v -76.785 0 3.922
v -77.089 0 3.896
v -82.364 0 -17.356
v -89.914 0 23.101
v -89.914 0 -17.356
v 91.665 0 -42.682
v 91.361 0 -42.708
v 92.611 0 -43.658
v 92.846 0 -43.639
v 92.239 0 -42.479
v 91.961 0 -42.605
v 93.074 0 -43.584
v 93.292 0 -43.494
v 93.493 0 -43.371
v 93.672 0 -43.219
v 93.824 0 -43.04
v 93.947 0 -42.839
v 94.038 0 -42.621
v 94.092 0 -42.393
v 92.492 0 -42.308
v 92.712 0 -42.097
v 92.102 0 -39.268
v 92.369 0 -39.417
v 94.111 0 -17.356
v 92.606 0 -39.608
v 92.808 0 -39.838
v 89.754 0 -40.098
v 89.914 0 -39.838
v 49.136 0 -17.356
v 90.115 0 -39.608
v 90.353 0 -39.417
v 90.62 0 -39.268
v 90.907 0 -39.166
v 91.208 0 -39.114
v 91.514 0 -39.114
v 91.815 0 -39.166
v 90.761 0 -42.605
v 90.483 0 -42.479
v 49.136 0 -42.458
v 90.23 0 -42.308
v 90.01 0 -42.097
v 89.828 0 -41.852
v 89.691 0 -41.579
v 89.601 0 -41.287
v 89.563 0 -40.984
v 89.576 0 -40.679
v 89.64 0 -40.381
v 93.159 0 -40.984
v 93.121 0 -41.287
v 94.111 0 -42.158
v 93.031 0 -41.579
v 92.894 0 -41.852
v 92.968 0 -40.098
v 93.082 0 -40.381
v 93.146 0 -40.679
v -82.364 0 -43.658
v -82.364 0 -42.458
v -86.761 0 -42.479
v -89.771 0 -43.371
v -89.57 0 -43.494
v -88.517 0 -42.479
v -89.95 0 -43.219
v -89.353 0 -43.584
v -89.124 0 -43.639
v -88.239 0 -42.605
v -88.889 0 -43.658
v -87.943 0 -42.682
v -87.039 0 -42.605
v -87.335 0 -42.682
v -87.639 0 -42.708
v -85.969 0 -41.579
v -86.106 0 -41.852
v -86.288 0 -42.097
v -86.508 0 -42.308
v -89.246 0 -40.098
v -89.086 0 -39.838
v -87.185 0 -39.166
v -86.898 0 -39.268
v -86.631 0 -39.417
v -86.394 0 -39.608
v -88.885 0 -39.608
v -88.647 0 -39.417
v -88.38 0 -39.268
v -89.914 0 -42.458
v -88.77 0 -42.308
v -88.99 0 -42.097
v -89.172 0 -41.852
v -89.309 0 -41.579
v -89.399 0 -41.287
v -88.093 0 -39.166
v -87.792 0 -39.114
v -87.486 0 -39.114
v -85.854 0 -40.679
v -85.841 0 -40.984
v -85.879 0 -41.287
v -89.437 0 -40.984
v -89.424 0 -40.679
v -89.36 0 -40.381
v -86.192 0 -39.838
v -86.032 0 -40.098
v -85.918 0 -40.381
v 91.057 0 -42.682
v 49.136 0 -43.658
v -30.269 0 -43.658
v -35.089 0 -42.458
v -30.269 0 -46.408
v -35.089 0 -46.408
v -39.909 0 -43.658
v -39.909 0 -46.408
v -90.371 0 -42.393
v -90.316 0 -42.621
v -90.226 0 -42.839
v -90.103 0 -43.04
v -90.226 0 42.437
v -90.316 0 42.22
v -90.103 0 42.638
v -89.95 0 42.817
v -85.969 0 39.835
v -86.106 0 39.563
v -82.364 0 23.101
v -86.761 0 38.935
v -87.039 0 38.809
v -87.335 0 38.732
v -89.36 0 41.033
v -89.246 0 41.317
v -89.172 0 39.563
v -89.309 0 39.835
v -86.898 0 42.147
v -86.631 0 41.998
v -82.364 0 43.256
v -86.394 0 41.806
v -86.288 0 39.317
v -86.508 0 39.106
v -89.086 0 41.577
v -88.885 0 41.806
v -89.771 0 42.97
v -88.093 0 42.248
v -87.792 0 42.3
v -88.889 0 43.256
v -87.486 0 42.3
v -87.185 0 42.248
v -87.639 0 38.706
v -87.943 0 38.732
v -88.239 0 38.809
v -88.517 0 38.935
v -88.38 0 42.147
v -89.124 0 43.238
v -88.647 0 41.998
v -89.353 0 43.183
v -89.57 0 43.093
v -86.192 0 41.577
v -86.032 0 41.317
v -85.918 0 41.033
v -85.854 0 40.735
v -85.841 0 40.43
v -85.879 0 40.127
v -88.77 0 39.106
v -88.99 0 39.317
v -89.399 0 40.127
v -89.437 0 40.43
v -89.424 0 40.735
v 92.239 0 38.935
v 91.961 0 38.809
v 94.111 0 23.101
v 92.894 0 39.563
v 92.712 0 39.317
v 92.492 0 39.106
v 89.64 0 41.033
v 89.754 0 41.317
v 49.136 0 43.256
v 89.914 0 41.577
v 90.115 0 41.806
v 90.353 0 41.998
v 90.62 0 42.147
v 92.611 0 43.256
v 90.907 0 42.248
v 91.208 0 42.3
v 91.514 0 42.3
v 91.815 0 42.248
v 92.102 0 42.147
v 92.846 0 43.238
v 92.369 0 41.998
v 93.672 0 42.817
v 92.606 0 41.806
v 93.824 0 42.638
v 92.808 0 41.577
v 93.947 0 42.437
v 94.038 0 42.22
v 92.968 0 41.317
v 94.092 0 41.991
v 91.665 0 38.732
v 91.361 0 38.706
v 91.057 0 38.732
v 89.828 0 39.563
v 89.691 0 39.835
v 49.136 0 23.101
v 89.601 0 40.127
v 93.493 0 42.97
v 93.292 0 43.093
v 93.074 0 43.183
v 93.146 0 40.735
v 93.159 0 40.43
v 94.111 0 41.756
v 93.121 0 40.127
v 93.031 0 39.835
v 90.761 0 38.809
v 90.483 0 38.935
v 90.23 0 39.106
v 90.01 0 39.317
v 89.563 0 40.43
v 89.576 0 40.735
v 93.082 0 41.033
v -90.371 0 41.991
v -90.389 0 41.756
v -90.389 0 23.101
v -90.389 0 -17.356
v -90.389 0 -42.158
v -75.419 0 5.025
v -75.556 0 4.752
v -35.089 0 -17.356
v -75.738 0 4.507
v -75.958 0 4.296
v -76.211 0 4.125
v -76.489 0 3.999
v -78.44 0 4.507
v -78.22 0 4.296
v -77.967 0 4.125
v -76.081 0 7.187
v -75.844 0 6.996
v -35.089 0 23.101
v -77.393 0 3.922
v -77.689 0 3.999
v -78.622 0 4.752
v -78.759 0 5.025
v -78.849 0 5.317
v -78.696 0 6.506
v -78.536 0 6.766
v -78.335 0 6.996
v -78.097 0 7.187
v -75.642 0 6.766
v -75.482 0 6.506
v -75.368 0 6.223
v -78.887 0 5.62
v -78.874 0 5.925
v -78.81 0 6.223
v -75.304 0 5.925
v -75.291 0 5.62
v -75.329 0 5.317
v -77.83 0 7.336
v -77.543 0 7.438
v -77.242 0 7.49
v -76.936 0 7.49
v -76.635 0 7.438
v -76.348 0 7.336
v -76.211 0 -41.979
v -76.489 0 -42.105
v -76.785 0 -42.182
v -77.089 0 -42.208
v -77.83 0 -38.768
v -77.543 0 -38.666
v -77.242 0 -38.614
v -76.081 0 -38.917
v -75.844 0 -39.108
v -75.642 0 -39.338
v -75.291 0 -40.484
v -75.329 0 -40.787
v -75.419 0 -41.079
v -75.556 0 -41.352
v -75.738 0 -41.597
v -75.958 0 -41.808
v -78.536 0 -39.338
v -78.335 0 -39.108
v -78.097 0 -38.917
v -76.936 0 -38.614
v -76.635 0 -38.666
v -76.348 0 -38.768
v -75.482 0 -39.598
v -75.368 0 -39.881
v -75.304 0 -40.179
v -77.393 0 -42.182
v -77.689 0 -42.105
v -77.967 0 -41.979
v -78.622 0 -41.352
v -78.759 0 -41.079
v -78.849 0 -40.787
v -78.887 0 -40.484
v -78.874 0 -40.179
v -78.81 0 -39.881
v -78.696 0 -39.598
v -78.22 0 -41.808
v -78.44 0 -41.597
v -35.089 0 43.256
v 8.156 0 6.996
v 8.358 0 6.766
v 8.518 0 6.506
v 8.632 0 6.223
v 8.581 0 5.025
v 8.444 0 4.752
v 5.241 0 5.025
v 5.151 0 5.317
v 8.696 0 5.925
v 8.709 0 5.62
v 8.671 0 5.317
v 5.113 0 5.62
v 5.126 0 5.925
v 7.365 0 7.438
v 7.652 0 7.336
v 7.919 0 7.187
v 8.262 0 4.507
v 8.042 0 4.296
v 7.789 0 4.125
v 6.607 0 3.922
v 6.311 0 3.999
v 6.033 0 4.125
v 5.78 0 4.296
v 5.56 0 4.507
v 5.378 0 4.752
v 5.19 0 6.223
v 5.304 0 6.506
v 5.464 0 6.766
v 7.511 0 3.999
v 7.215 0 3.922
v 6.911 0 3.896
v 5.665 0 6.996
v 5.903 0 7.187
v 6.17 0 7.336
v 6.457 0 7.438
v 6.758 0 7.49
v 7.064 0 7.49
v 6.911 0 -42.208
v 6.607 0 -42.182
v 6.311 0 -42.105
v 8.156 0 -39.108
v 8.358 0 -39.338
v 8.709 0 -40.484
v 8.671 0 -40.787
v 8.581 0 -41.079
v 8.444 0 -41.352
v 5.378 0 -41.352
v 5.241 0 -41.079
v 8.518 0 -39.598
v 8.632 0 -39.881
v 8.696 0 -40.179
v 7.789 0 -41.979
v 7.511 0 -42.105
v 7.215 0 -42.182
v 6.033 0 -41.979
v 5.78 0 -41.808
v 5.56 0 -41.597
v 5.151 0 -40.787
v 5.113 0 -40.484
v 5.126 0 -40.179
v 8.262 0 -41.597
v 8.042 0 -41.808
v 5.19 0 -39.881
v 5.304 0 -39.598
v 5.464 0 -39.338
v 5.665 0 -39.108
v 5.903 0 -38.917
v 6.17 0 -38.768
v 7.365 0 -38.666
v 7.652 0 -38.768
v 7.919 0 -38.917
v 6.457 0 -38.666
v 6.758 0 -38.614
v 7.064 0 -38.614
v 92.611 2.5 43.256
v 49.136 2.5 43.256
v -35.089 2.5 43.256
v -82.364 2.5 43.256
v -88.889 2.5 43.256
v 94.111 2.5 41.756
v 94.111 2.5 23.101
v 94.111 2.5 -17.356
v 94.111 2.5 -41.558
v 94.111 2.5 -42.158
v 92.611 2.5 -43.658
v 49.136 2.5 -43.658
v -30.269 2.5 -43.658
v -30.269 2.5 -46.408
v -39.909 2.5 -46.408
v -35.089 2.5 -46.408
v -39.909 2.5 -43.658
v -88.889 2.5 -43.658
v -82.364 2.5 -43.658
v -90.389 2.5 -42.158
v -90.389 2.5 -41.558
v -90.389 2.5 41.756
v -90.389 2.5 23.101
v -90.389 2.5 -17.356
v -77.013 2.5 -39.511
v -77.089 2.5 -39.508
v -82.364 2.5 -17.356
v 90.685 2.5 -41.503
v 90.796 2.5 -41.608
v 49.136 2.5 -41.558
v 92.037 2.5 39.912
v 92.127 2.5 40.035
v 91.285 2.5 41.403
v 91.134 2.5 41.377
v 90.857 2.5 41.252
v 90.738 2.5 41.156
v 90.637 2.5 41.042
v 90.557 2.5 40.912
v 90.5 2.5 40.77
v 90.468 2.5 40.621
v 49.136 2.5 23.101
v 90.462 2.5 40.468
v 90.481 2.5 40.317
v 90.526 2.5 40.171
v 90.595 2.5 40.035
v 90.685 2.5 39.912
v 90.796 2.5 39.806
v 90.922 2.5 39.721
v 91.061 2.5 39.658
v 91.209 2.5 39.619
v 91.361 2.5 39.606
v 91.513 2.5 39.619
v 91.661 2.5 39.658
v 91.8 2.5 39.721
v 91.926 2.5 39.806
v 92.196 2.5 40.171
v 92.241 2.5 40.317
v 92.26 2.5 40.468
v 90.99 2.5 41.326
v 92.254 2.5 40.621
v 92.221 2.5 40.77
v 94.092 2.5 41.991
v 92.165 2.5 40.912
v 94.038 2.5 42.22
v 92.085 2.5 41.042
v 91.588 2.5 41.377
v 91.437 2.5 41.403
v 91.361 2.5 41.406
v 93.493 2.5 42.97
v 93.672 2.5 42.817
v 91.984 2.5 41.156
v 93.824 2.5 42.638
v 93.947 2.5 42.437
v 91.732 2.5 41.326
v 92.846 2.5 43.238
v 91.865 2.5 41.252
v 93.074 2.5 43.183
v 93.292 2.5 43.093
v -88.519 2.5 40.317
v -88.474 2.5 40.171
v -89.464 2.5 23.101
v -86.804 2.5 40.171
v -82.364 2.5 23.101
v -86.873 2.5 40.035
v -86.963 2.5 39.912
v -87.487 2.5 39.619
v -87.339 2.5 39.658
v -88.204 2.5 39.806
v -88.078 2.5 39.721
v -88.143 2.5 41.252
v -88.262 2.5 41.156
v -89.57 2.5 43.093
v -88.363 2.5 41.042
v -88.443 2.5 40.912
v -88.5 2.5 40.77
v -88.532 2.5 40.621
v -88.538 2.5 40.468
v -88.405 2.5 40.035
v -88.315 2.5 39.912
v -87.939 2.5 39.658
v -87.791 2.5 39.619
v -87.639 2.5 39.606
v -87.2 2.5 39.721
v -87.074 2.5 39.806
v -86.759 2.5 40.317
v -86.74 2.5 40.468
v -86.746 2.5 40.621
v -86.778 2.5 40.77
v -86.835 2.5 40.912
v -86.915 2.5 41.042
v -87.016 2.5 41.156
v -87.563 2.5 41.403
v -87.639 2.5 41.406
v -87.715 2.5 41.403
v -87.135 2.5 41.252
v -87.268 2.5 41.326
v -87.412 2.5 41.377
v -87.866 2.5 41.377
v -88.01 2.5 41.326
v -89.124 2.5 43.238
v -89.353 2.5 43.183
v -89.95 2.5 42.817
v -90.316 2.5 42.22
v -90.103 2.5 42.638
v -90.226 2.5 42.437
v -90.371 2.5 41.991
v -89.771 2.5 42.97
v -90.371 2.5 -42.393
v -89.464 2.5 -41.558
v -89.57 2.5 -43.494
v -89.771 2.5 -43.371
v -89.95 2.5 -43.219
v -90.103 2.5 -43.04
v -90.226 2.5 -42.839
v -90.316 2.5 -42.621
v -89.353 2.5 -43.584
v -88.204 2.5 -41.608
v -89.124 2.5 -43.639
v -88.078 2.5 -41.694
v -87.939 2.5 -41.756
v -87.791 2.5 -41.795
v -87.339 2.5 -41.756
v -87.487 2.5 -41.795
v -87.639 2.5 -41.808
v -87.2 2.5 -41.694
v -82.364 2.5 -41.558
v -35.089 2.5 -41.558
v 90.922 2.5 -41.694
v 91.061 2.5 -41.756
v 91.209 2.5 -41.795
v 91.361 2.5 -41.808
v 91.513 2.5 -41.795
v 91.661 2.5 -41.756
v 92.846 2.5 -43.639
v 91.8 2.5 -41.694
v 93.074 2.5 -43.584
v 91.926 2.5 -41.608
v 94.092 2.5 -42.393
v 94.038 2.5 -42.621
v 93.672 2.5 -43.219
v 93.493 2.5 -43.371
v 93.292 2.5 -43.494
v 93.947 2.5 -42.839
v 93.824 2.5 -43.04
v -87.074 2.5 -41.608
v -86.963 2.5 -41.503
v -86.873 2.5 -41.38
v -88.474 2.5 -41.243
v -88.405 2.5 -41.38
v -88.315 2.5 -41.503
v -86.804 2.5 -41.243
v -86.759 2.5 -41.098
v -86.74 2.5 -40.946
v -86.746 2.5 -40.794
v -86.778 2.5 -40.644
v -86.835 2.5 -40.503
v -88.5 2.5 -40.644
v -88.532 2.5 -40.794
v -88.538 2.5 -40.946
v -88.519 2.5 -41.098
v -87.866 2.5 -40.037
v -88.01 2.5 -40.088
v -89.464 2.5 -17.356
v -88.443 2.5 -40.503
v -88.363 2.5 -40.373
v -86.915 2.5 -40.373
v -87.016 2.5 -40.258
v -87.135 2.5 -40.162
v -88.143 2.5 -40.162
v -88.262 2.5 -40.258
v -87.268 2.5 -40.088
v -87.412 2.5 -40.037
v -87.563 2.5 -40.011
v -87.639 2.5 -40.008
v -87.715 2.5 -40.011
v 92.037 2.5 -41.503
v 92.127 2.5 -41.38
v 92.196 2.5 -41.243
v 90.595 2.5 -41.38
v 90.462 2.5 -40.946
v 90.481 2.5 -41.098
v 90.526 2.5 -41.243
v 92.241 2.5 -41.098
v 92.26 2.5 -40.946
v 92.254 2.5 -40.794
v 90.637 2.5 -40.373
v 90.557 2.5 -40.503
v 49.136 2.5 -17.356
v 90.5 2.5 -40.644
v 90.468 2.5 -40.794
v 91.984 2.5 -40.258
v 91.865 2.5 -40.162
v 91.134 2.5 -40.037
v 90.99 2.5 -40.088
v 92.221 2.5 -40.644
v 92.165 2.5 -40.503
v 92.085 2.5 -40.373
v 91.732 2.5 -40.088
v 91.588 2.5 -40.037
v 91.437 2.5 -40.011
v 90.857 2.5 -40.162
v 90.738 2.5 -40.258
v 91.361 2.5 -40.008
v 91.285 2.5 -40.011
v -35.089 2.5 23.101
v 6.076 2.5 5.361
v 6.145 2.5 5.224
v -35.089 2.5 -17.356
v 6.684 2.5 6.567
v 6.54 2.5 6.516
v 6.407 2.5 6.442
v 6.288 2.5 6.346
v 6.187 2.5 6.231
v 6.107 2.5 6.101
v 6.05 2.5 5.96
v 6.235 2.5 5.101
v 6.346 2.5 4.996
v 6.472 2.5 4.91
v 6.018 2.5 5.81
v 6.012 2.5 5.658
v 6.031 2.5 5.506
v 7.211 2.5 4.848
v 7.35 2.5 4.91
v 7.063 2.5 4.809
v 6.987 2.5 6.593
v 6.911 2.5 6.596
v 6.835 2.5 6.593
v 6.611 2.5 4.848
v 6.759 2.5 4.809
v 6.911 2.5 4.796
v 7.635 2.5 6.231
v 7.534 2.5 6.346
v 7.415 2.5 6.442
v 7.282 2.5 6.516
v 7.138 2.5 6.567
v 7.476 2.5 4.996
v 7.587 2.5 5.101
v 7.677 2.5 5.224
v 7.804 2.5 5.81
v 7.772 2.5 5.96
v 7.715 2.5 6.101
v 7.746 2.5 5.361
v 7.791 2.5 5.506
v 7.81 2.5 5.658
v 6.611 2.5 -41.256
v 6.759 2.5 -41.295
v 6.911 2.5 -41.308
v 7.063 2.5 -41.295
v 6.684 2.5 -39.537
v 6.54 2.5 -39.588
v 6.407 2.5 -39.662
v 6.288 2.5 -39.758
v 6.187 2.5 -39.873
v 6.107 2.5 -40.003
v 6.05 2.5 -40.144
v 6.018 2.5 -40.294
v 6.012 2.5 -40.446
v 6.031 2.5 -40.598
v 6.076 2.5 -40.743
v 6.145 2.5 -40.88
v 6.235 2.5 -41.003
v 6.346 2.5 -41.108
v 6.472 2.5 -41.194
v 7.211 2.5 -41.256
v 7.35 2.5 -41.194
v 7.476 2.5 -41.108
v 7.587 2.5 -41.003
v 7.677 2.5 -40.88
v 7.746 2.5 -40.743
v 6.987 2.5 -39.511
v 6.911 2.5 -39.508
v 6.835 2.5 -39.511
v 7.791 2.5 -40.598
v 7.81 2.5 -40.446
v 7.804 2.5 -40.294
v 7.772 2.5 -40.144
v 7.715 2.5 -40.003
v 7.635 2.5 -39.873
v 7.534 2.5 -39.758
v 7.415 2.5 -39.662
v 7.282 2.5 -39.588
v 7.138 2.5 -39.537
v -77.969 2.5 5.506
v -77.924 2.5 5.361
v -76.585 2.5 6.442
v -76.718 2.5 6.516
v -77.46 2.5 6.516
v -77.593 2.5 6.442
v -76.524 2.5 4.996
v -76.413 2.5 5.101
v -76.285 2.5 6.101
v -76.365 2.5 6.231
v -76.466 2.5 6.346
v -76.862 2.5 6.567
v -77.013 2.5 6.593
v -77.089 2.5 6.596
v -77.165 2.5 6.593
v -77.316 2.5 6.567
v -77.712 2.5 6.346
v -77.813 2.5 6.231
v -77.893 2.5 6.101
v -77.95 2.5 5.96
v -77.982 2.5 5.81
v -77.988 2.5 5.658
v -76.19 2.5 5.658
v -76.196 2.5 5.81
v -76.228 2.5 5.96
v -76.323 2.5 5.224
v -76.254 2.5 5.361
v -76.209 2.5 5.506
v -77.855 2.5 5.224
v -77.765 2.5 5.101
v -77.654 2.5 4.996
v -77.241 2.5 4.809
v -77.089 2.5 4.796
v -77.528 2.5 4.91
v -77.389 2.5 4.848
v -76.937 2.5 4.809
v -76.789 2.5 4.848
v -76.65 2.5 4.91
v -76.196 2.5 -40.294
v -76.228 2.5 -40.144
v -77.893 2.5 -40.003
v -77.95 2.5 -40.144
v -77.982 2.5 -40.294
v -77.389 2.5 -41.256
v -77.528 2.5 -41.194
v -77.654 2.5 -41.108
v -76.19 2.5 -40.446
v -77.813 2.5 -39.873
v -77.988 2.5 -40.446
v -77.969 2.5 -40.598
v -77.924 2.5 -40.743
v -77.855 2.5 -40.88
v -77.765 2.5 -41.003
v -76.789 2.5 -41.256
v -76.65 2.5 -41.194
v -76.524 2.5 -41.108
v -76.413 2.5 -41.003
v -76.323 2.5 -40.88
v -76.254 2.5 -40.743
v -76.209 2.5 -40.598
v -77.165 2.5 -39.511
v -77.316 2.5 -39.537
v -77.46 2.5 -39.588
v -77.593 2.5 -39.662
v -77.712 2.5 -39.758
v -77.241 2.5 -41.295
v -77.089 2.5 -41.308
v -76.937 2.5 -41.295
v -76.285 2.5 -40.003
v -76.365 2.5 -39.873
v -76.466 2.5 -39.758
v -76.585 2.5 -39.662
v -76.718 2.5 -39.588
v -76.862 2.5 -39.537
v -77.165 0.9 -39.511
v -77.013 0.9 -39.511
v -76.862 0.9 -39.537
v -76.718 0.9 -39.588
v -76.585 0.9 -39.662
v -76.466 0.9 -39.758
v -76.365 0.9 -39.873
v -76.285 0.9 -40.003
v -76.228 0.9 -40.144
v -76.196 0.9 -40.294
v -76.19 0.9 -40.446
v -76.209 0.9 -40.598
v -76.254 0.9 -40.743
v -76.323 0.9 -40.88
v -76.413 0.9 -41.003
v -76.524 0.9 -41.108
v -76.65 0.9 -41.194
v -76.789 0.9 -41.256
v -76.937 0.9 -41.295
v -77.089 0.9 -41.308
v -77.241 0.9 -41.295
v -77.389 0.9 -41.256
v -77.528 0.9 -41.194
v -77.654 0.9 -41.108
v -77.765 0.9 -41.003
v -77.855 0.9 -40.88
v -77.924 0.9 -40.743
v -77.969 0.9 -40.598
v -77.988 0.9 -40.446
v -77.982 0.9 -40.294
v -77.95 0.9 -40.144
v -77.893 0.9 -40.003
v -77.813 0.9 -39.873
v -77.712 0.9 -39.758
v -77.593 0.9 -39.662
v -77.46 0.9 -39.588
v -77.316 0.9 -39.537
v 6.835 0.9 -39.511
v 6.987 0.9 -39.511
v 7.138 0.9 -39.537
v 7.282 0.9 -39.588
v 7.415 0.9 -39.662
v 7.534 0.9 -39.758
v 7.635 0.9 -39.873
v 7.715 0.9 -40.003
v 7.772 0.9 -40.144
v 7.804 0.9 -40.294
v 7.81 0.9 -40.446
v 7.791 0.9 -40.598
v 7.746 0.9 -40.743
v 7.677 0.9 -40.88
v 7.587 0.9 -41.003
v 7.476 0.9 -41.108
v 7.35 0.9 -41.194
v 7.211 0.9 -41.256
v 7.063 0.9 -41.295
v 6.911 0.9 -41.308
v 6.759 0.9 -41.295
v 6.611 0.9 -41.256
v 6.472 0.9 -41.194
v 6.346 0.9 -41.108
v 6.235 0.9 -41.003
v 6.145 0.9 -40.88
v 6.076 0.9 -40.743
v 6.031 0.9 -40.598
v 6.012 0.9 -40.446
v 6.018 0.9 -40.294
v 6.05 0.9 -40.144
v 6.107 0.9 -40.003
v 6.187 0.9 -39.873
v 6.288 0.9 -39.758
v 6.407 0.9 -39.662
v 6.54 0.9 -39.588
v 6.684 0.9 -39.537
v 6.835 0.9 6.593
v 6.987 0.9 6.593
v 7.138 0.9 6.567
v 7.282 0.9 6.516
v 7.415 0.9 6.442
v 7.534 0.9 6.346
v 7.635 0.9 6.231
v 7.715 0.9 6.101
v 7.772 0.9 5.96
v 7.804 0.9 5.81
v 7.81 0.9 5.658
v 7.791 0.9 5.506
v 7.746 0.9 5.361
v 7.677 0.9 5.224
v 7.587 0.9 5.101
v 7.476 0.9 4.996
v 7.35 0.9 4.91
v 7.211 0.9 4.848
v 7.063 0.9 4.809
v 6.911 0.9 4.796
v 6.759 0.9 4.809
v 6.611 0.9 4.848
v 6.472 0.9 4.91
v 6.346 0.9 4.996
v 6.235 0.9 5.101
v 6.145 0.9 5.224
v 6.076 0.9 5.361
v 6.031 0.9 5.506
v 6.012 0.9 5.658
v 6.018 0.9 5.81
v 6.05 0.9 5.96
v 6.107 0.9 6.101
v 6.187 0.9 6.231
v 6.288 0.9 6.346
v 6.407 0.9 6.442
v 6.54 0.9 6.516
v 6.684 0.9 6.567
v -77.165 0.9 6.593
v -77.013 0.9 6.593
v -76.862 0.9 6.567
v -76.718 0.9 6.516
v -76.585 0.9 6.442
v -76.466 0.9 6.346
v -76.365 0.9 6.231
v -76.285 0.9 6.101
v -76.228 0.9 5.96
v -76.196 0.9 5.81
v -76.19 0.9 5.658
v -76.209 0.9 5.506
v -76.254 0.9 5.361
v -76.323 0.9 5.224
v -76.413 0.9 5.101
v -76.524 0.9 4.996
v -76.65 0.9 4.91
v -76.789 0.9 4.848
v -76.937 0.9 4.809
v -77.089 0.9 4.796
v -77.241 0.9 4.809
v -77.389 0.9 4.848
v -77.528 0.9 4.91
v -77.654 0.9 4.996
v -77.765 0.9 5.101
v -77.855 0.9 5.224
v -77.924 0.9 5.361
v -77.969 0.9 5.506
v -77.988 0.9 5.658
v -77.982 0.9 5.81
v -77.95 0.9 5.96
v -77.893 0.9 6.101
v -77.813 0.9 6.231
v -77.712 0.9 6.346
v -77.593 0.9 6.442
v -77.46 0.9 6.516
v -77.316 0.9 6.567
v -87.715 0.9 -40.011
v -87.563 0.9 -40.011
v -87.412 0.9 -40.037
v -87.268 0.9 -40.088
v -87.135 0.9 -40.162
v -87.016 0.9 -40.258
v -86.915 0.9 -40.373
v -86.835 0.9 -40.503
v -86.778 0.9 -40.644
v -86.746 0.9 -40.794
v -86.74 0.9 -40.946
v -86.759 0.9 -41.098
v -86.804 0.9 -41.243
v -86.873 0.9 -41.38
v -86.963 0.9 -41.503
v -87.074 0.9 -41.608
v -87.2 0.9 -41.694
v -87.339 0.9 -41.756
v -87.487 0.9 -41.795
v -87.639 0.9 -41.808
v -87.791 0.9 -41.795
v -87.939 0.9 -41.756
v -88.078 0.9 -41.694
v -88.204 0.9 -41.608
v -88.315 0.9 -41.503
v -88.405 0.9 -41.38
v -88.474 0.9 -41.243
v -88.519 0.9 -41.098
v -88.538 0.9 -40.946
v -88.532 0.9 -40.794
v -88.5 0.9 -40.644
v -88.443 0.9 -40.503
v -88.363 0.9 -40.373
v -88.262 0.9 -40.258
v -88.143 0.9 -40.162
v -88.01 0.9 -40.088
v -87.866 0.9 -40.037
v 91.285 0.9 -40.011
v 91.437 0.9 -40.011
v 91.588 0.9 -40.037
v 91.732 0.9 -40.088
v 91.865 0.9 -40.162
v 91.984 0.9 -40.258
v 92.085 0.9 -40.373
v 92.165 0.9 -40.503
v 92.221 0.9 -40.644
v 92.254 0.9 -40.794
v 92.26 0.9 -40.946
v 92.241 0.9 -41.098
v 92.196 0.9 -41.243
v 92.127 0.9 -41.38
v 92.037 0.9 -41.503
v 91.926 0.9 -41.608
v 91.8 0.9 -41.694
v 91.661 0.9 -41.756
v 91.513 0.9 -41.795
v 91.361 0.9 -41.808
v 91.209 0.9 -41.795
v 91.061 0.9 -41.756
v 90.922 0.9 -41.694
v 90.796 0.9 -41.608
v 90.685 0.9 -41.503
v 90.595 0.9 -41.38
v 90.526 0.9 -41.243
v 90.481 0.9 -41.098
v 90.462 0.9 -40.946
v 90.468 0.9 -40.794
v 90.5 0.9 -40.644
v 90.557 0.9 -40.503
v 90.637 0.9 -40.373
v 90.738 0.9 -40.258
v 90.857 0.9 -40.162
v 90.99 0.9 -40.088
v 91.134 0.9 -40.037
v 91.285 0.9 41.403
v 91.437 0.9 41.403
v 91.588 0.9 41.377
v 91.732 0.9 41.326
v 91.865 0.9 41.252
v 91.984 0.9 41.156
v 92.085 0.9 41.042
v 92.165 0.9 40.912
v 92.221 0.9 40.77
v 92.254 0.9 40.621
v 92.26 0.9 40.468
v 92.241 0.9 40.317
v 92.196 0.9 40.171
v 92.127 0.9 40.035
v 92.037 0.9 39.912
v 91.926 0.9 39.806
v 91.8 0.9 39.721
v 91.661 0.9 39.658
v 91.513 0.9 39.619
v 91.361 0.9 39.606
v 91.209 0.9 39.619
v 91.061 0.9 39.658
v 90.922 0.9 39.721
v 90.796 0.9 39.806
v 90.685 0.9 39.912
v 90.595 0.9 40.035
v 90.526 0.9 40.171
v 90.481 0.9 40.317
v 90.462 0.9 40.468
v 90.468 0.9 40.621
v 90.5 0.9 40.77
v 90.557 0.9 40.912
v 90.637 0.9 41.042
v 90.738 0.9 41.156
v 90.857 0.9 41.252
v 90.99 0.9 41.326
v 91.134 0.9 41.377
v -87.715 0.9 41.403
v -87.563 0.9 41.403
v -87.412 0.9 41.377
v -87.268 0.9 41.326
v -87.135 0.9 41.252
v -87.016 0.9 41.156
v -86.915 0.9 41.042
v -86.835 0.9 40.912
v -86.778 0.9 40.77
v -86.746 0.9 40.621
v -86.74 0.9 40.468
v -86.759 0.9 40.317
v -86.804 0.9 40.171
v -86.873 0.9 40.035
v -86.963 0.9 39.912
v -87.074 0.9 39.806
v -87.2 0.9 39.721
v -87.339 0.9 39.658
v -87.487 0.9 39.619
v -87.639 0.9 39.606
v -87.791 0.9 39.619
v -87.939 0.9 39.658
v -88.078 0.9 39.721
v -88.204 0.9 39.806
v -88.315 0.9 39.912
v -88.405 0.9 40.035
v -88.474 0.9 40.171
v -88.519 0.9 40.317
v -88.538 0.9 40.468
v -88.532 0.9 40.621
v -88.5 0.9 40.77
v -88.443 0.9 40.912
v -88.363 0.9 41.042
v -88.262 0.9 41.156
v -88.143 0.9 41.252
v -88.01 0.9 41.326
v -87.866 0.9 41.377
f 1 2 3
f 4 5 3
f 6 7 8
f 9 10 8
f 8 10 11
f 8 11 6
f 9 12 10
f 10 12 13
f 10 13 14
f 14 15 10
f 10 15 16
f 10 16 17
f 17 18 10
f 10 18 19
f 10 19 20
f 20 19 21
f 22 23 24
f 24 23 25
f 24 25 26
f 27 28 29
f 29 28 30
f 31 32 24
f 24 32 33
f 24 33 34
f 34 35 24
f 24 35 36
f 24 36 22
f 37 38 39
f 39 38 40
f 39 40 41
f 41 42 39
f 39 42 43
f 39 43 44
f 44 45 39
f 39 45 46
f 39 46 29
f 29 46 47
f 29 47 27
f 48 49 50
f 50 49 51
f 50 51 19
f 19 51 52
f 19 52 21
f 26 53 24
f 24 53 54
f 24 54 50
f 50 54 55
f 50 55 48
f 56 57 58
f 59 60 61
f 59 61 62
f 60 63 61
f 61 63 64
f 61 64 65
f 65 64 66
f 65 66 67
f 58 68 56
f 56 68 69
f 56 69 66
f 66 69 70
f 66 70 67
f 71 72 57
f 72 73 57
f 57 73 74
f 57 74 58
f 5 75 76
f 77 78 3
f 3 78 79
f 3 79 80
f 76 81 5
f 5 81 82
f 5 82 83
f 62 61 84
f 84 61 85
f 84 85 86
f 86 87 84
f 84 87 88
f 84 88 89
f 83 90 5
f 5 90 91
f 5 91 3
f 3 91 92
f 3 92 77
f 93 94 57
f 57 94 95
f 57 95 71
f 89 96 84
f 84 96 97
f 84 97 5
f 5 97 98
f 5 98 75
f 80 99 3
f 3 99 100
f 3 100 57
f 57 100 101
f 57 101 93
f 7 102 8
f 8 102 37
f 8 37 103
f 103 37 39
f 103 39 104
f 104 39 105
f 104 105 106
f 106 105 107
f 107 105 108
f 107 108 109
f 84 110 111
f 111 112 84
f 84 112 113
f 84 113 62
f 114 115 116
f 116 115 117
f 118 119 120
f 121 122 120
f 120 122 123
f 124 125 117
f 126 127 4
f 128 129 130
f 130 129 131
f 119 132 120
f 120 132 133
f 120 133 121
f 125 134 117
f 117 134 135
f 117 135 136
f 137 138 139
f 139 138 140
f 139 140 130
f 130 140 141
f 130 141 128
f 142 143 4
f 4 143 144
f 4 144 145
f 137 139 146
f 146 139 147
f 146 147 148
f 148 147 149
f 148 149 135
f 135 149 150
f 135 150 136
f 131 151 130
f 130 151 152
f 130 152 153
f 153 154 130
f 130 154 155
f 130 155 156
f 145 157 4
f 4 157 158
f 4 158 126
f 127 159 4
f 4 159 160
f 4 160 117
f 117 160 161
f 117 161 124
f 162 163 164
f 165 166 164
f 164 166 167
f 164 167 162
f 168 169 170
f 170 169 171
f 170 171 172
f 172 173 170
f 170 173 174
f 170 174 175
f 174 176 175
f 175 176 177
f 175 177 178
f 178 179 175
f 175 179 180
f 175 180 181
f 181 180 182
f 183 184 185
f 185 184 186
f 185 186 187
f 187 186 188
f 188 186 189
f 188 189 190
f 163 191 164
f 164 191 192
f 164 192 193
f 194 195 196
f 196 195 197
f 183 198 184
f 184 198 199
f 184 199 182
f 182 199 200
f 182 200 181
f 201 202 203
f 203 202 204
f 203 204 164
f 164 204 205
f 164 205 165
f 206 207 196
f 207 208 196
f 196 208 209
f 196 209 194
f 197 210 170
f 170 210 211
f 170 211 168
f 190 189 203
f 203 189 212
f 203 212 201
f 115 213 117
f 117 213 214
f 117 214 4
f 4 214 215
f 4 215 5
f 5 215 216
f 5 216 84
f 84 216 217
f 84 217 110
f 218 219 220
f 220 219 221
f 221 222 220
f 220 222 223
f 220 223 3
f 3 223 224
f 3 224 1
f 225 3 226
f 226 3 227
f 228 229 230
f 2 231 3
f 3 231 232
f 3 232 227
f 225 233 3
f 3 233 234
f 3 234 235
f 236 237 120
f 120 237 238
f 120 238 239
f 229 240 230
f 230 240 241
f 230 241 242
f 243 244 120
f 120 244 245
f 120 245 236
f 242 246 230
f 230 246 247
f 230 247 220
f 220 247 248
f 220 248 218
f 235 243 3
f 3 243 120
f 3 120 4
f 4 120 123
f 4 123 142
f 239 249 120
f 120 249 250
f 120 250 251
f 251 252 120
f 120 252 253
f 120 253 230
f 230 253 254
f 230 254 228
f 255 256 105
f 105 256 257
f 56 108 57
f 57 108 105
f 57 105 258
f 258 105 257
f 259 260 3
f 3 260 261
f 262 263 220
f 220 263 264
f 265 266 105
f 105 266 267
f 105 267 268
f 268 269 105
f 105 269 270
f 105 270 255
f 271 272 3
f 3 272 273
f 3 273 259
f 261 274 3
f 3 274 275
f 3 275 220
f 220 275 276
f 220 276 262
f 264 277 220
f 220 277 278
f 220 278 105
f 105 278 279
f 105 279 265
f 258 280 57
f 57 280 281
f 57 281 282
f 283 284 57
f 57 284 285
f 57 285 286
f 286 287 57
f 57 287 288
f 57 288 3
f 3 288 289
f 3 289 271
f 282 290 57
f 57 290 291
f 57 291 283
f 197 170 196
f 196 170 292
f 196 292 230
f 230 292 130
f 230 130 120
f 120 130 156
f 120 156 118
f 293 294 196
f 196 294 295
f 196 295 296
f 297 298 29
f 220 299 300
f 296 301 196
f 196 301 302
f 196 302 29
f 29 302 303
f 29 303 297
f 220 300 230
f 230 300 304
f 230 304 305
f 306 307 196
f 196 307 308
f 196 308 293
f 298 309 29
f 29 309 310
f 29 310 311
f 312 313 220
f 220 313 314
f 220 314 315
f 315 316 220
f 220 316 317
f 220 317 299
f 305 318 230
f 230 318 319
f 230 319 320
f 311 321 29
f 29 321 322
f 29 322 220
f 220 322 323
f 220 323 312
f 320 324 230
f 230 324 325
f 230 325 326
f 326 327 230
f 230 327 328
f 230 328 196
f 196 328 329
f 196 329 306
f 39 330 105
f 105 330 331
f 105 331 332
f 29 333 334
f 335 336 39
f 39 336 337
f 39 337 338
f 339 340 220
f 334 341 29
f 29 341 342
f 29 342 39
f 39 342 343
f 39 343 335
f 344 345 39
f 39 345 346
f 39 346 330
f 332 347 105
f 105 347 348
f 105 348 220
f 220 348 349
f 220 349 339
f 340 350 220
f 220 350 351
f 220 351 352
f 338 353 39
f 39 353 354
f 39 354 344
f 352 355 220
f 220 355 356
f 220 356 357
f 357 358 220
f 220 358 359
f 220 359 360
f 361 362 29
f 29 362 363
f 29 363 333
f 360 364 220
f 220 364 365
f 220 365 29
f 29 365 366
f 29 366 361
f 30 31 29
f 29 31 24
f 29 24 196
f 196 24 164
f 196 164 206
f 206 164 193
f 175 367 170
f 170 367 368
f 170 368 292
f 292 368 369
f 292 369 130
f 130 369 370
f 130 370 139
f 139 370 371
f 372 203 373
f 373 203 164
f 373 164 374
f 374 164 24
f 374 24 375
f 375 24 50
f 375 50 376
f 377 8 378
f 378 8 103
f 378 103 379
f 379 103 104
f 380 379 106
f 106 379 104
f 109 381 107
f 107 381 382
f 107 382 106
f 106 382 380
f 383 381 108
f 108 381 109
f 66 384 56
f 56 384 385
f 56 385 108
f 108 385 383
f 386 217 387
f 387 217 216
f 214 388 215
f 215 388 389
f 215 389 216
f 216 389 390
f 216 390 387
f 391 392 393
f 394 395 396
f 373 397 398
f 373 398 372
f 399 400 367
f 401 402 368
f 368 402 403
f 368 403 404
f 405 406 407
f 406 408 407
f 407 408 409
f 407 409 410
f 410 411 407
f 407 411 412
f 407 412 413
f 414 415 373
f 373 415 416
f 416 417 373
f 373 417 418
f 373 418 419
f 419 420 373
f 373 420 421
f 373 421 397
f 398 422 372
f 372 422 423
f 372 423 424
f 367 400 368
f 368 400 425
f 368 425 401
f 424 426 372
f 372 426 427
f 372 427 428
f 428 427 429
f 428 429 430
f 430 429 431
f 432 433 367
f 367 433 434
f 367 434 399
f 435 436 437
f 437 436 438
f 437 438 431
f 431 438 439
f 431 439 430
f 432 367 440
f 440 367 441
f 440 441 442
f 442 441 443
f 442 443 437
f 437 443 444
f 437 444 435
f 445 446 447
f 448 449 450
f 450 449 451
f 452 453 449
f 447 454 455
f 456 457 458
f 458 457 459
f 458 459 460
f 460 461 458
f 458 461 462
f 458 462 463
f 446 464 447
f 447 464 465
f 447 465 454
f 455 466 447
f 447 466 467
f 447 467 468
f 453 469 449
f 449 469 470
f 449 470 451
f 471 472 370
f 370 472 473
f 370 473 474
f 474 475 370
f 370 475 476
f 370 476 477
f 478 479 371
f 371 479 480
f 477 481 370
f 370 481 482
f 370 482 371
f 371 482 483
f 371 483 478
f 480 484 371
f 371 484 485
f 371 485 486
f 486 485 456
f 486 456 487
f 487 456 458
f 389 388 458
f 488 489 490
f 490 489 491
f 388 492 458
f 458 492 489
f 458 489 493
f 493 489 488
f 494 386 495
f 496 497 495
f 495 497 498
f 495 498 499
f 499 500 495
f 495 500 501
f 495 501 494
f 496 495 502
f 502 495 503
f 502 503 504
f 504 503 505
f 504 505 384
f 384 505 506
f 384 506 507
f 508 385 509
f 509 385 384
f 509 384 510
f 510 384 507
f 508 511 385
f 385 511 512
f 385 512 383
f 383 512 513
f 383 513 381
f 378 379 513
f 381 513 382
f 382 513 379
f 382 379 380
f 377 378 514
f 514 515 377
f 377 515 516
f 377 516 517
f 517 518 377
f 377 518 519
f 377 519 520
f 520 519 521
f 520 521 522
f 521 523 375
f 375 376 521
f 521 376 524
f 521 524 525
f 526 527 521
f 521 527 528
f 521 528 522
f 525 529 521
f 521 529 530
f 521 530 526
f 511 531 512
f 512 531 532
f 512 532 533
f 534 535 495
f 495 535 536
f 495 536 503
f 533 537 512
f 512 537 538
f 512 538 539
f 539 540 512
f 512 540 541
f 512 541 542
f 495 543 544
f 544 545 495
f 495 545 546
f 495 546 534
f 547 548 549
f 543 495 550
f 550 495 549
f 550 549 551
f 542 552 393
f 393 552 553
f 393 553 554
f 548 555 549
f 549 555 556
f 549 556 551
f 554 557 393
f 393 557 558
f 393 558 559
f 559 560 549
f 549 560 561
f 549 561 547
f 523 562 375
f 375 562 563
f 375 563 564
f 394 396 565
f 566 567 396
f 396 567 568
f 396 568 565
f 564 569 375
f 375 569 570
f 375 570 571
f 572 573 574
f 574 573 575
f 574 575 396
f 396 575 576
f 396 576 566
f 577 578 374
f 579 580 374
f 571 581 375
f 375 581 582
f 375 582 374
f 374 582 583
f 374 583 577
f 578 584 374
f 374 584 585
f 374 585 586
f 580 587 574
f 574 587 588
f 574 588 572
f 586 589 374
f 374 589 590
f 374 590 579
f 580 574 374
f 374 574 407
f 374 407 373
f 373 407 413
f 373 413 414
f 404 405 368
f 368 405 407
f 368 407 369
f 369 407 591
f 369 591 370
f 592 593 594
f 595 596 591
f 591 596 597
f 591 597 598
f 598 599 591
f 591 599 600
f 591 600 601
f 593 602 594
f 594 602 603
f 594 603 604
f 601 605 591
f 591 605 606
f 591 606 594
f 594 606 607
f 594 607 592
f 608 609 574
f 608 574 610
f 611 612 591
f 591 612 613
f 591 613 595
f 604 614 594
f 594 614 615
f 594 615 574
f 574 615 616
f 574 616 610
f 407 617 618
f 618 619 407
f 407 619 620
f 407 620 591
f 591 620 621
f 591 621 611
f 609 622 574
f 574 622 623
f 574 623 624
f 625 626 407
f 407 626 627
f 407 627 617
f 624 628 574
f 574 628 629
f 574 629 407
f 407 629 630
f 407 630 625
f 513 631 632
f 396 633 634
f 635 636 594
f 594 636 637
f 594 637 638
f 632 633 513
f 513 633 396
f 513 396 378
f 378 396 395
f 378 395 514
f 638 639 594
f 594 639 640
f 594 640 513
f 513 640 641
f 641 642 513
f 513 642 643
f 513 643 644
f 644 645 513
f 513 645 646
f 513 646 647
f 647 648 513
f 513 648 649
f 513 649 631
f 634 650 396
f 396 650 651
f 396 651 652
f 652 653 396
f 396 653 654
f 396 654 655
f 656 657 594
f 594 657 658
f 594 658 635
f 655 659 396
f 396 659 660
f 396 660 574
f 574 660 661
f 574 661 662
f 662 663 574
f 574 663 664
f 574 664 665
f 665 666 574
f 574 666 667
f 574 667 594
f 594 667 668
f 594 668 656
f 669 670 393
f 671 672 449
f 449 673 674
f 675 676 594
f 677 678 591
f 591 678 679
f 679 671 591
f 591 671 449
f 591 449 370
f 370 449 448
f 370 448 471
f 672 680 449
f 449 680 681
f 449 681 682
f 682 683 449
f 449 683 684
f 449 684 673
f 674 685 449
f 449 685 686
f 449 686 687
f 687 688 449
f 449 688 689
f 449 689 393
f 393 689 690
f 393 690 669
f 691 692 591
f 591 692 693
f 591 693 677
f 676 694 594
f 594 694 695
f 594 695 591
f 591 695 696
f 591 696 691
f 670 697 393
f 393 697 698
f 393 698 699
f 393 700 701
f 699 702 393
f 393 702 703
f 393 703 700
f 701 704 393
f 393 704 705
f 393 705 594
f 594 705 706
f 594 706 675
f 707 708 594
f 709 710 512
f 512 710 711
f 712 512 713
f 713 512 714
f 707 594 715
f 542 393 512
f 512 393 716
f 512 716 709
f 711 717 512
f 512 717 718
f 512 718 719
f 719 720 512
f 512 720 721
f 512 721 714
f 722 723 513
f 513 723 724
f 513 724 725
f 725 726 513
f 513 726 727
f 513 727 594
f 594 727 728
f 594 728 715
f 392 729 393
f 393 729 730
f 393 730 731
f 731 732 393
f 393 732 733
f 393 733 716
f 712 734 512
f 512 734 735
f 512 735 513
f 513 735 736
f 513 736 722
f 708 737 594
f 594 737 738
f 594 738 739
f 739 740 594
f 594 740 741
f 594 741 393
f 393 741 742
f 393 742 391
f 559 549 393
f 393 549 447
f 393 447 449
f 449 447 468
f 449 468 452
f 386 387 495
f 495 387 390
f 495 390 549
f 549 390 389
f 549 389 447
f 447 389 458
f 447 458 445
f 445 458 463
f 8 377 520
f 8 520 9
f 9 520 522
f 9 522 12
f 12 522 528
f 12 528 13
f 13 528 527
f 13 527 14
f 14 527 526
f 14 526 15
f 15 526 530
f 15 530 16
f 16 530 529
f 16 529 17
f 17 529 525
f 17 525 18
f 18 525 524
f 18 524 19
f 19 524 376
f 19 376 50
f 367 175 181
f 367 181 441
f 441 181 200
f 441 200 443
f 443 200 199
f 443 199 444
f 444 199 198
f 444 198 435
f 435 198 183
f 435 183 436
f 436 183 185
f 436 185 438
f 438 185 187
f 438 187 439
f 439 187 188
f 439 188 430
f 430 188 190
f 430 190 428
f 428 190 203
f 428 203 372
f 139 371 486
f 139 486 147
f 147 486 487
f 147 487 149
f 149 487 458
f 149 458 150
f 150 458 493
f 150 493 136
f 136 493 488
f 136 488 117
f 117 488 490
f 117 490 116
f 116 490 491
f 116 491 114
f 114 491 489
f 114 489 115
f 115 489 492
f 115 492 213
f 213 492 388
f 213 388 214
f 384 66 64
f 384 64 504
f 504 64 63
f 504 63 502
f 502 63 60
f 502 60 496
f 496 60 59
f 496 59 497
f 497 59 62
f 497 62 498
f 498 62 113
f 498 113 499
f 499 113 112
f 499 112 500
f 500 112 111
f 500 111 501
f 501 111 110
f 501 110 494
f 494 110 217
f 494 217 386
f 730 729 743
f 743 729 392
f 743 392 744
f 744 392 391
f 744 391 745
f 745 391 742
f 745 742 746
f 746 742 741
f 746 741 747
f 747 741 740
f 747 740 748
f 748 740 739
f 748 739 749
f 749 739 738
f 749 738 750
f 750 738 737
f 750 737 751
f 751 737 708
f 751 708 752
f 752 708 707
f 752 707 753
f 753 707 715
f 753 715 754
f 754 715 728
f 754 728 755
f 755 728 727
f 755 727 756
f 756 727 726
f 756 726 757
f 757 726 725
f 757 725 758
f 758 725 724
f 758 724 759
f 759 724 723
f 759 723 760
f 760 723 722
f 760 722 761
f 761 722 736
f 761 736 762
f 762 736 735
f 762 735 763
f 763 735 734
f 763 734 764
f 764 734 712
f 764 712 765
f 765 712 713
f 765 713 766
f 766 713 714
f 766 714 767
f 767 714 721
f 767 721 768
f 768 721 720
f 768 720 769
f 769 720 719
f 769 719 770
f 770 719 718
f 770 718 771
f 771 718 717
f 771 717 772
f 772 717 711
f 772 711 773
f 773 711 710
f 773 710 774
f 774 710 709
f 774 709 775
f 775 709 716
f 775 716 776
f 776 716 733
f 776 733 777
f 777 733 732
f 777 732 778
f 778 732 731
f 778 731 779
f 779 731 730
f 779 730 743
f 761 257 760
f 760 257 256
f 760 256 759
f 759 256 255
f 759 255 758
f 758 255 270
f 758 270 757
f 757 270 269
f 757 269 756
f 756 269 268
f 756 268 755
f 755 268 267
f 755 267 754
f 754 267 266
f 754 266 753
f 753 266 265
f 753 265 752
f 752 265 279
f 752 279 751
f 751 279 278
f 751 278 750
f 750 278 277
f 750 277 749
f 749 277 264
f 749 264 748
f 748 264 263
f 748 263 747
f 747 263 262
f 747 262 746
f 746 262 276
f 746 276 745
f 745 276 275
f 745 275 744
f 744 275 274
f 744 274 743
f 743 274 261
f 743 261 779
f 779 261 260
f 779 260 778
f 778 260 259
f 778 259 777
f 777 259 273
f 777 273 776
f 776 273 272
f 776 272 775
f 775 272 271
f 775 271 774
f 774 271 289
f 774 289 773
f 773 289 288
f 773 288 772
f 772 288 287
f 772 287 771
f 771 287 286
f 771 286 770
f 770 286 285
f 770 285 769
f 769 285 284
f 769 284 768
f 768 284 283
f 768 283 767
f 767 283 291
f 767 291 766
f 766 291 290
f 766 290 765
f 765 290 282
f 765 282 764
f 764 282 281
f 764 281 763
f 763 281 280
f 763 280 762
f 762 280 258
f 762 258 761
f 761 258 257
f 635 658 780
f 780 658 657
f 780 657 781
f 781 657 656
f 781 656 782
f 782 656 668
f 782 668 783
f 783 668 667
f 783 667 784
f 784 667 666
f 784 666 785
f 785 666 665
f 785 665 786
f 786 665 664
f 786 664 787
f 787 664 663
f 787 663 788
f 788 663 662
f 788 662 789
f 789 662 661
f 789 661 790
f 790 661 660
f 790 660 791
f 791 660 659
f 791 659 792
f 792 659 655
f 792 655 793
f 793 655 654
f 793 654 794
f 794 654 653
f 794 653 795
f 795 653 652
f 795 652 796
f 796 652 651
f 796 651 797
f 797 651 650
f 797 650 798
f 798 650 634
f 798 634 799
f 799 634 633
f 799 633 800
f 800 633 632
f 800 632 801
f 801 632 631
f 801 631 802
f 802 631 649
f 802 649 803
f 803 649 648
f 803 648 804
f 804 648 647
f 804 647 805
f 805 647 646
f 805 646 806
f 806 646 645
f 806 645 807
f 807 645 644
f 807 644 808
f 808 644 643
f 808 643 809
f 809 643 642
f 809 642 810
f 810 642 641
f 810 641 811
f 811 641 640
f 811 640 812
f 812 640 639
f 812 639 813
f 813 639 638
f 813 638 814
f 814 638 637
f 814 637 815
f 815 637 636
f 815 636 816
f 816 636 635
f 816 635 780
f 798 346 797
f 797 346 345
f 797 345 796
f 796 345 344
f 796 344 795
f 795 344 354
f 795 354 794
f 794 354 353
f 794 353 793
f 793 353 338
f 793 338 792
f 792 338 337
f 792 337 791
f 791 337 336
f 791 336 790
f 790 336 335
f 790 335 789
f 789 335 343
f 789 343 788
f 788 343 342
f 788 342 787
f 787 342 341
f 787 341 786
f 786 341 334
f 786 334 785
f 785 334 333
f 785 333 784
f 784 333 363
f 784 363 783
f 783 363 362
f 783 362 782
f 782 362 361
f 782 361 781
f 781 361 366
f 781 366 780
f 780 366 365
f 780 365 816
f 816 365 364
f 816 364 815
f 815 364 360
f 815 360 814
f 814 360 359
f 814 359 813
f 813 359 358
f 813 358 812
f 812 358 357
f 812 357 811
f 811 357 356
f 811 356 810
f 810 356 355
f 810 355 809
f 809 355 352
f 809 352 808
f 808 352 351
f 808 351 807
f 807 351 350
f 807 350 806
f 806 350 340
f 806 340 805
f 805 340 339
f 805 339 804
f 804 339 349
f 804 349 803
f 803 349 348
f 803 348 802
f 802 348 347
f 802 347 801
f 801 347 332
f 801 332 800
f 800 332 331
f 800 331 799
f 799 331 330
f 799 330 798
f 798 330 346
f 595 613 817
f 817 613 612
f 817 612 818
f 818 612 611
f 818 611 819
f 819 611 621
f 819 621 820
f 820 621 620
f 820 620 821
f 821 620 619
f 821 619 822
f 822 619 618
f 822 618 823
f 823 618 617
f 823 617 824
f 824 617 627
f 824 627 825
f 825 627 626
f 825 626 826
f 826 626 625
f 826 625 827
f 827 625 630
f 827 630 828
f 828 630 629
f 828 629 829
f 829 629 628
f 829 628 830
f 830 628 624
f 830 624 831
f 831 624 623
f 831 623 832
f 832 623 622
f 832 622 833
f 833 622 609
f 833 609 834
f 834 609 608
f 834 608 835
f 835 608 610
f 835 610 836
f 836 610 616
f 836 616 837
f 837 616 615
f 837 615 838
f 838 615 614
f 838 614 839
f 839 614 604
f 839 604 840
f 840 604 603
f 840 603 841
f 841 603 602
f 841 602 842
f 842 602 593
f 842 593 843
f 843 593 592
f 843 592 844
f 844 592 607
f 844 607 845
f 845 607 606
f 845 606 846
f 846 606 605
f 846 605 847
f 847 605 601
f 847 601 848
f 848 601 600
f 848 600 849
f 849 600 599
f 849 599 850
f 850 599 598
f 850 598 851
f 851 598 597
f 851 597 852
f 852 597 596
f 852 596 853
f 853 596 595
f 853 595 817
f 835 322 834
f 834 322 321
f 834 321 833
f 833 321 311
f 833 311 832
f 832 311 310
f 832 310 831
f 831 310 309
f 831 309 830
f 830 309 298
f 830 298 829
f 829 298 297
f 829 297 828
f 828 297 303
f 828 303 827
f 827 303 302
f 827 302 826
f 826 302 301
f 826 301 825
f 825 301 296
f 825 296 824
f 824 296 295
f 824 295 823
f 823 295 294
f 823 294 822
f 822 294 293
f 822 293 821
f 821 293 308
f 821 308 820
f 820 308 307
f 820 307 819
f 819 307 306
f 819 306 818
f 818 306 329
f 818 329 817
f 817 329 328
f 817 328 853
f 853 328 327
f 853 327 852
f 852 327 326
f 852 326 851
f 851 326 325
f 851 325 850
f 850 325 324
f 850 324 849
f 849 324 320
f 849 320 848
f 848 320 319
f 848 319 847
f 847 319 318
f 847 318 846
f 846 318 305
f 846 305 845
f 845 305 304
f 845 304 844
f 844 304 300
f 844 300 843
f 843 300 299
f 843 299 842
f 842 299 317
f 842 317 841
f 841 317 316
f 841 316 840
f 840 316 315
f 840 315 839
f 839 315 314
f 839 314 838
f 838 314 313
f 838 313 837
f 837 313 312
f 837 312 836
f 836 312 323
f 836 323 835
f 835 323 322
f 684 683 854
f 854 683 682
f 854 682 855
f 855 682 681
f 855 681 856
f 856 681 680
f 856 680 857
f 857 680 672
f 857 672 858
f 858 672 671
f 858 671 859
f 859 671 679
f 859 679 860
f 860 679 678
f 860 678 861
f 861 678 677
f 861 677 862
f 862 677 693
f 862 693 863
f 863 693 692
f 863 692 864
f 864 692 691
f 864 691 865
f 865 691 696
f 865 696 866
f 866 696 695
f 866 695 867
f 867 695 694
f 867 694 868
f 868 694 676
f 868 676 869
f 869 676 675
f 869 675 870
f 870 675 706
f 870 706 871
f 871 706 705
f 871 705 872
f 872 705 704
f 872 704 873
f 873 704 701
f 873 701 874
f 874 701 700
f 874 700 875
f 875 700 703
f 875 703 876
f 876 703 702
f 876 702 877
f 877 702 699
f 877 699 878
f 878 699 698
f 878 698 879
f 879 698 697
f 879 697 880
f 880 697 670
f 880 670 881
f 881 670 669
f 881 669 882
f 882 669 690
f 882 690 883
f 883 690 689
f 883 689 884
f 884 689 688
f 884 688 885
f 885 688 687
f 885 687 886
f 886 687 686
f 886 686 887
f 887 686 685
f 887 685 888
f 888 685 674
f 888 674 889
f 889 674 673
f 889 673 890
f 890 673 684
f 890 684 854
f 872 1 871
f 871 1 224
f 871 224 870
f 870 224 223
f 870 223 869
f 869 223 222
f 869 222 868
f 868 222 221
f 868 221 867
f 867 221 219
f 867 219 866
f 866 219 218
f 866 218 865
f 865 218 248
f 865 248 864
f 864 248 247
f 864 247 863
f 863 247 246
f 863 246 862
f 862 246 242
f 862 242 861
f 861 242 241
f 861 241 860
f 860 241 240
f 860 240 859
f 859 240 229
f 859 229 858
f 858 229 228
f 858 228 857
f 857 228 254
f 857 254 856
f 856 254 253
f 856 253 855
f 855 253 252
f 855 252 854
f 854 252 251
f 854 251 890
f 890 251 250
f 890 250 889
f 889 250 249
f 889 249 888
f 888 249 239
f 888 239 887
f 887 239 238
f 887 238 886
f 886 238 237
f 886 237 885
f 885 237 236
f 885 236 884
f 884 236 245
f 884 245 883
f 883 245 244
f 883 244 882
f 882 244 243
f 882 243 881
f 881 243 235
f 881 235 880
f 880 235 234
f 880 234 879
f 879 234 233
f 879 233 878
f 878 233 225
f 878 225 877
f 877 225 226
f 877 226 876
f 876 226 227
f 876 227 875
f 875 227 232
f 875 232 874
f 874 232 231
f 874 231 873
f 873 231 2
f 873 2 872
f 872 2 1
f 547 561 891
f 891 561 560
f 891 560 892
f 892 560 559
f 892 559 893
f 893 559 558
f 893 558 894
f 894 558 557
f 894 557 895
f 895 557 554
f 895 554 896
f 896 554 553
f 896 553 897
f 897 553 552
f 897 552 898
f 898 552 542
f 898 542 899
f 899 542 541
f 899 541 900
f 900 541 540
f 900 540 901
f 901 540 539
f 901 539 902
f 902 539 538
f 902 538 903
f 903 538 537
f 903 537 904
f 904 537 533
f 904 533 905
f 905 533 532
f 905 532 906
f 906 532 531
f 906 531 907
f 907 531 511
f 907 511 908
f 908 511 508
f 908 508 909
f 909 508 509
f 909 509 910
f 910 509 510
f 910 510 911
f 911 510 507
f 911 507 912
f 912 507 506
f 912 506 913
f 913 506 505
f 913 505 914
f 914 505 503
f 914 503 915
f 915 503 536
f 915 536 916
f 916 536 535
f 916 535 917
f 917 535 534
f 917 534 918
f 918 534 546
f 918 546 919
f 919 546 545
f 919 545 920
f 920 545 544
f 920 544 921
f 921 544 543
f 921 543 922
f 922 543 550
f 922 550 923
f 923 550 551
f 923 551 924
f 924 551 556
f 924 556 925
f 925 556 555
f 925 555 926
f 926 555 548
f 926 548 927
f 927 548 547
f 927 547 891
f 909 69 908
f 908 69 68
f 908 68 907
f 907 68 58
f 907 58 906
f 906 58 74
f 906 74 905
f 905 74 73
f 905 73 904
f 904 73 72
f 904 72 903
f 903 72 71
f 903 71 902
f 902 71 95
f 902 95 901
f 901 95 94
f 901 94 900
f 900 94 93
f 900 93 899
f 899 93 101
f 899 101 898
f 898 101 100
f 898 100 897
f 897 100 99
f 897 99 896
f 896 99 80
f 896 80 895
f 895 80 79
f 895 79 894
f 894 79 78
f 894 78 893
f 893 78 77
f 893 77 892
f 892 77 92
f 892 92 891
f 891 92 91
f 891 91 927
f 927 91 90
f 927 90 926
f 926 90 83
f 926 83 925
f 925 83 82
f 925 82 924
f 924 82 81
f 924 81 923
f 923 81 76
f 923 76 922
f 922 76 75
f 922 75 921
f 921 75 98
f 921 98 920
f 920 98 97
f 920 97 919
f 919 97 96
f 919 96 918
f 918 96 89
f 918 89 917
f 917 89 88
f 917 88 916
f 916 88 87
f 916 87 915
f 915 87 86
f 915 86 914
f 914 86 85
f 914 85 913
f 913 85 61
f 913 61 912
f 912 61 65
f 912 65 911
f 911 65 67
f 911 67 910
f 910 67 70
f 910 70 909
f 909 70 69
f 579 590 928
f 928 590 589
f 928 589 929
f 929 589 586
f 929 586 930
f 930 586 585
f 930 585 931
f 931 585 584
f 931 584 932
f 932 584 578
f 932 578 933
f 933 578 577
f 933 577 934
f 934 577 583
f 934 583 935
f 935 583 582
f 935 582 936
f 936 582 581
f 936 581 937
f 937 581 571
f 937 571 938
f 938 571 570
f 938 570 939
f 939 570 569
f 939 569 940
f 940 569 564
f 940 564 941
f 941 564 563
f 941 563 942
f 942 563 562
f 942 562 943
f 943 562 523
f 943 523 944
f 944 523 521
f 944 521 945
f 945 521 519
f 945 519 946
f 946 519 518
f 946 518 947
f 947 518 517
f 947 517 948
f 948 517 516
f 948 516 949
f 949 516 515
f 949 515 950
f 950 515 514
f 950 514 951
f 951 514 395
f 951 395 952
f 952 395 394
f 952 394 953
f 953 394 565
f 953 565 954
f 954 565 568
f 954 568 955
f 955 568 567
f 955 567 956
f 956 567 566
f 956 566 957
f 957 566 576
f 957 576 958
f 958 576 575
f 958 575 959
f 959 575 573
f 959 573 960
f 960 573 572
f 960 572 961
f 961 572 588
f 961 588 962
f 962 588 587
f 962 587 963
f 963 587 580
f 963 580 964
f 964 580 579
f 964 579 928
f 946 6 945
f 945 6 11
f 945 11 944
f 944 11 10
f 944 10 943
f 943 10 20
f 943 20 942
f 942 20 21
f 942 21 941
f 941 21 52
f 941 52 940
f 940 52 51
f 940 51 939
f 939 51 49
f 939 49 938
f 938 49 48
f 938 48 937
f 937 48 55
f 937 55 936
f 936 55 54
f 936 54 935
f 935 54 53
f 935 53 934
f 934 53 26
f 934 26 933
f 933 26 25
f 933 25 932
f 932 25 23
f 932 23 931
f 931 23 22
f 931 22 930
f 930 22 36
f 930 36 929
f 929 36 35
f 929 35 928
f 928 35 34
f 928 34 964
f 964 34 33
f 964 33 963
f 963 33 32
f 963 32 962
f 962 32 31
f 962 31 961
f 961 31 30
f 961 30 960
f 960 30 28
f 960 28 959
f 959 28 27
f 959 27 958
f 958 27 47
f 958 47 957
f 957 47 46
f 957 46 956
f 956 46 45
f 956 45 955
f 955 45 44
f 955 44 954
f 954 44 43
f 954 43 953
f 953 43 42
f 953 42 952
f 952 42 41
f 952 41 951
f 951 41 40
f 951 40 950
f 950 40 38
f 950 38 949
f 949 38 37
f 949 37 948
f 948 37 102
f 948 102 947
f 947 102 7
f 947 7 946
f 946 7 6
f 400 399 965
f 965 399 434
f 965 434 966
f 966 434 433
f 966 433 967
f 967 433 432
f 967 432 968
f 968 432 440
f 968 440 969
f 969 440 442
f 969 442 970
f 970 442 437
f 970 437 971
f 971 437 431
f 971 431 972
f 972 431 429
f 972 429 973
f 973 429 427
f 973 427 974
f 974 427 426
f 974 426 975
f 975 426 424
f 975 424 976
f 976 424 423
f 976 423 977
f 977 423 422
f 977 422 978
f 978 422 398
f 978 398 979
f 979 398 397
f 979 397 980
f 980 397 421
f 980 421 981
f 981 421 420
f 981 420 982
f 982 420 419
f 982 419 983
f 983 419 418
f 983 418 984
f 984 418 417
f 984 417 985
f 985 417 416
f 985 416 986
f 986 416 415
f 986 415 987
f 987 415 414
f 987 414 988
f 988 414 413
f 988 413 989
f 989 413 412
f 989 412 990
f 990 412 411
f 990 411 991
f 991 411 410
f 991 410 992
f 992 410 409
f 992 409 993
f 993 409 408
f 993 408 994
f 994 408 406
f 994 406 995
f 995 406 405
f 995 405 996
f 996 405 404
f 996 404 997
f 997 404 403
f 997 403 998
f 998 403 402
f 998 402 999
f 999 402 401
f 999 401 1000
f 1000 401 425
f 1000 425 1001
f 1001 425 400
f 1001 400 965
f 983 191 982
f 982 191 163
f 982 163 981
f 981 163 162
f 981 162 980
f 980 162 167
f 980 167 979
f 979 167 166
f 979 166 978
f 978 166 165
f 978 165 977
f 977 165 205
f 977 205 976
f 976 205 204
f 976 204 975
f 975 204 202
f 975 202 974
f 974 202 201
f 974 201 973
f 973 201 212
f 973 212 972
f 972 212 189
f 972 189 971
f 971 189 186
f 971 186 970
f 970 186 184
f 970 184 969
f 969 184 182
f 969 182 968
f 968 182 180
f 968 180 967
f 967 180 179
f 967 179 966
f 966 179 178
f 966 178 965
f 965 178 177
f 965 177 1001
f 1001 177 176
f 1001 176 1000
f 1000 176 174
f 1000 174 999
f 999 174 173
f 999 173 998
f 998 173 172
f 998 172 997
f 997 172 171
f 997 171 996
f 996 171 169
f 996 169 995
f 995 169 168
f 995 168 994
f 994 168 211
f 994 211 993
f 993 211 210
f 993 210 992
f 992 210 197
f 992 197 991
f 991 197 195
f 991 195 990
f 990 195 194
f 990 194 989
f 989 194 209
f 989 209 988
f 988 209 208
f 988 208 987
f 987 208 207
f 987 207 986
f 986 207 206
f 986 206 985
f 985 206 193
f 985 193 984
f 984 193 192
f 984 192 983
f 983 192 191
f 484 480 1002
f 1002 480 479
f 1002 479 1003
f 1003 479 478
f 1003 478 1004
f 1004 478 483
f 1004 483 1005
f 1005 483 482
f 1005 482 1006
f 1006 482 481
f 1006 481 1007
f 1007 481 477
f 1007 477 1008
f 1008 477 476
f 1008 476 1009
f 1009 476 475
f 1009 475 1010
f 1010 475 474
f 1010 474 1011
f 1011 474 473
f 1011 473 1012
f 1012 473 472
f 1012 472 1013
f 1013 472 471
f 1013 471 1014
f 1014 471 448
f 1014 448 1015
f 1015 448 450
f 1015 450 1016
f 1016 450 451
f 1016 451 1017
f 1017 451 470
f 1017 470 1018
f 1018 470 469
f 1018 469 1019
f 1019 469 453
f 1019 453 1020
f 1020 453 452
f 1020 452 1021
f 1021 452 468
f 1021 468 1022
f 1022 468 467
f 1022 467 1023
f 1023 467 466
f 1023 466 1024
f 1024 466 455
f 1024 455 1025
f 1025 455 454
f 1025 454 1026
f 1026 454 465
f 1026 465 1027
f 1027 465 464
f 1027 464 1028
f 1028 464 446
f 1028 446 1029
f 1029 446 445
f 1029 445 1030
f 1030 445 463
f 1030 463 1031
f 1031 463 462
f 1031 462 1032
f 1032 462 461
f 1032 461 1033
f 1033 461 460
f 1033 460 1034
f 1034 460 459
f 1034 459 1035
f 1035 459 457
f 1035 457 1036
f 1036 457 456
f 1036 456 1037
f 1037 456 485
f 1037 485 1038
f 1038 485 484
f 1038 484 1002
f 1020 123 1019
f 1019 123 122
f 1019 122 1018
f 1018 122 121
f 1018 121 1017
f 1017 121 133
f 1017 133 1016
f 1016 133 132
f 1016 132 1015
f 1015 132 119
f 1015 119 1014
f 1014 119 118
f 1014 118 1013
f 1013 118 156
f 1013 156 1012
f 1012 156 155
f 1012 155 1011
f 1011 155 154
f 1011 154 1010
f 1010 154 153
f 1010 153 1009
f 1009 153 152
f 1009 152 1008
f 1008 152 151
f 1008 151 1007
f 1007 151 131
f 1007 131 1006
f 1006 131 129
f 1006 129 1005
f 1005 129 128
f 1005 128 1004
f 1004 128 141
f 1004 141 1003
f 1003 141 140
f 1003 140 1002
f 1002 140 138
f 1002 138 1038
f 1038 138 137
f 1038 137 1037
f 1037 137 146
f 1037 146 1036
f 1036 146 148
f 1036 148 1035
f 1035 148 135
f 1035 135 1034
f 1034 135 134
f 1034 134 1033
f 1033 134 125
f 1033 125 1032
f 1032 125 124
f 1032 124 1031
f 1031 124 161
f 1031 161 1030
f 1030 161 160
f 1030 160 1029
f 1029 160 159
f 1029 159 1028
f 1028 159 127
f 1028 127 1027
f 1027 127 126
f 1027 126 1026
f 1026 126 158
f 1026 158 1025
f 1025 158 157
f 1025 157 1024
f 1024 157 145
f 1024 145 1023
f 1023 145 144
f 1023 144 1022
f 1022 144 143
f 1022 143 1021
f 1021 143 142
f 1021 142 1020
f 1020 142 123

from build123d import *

# Parameters (mm, degrees)
SALIENTE_EXTRUIR1_DEPTH                              = 2.5
REDONDEO1_R                                          = 1.5
CSK_FOR_M1_6_COUNTERSUNK_FLAT_HEAD_SCREW_D           = 1.8
CSK_FOR_M1_6_COUNTERSUNK_FLAT_HEAD_SCREW_CSINK_D     = 3.6
CSK_FOR_M1_6_COUNTERSUNK_FLAT_HEAD_SCREW_CSINK_ANGLE = 90


with BuildPart() as part:
    # Croquis1 → Saliente-Extruir1 (new body)
    with BuildSketch(Plane(origin=(0, 0, 0), x_dir=(1, 0, 0), z_dir=(0, 1, 0))):
        Polygon((-90.389050604, -43.256388366), (94.110949396, -43.256388366), (94.110949396, 43.657904704), (-30.269137665, 43.657904704), (-30.269137665, 46.407904704), (-39.909137665, 46.407904704), (-39.909137665, 43.657904704), (-90.389050604, 43.657904704), align=None)
    extrude(amount=SALIENTE_EXTRUIR1_DEPTH)

    # Redondeo1
    redondeo1_edges = [part.edges().sort_by_distance(p)[0] for p in [
        (-90.389050604, 1.25, 43.256388366),
        (-90.389050604, 1.25, -43.657904704),
        (94.110949396, 1.25, -43.657904704),
        (94.110949396, 1.25, 43.256388366),
    ]]
    fillet(redondeo1_edges, radius=REDONDEO1_R)

    # CSK for M1.6 Countersunk Flat Head Screw1 (through all)
    with Locations(Plane(origin=(-87.639050604, 0, 40.506388366), x_dir=(0, 0, -1), z_dir=(0, -1, 0))):
        with Locations((0, 0), (0, 179), (81.41429307, 179), (81.41429307, 0), (34.81029307, 10.55), (34.81029307, 94.55), (80.91429307, 94.55), (80.91429307, 10.55)):
            CounterSinkHole(CSK_FOR_M1_6_COUNTERSUNK_FLAT_HEAD_SCREW_D / 2, CSK_FOR_M1_6_COUNTERSUNK_FLAT_HEAD_SCREW_CSINK_D / 2, counter_sink_angle=CSK_FOR_M1_6_COUNTERSUNK_FLAT_HEAD_SCREW_CSINK_ANGLE)


solid = part.part
